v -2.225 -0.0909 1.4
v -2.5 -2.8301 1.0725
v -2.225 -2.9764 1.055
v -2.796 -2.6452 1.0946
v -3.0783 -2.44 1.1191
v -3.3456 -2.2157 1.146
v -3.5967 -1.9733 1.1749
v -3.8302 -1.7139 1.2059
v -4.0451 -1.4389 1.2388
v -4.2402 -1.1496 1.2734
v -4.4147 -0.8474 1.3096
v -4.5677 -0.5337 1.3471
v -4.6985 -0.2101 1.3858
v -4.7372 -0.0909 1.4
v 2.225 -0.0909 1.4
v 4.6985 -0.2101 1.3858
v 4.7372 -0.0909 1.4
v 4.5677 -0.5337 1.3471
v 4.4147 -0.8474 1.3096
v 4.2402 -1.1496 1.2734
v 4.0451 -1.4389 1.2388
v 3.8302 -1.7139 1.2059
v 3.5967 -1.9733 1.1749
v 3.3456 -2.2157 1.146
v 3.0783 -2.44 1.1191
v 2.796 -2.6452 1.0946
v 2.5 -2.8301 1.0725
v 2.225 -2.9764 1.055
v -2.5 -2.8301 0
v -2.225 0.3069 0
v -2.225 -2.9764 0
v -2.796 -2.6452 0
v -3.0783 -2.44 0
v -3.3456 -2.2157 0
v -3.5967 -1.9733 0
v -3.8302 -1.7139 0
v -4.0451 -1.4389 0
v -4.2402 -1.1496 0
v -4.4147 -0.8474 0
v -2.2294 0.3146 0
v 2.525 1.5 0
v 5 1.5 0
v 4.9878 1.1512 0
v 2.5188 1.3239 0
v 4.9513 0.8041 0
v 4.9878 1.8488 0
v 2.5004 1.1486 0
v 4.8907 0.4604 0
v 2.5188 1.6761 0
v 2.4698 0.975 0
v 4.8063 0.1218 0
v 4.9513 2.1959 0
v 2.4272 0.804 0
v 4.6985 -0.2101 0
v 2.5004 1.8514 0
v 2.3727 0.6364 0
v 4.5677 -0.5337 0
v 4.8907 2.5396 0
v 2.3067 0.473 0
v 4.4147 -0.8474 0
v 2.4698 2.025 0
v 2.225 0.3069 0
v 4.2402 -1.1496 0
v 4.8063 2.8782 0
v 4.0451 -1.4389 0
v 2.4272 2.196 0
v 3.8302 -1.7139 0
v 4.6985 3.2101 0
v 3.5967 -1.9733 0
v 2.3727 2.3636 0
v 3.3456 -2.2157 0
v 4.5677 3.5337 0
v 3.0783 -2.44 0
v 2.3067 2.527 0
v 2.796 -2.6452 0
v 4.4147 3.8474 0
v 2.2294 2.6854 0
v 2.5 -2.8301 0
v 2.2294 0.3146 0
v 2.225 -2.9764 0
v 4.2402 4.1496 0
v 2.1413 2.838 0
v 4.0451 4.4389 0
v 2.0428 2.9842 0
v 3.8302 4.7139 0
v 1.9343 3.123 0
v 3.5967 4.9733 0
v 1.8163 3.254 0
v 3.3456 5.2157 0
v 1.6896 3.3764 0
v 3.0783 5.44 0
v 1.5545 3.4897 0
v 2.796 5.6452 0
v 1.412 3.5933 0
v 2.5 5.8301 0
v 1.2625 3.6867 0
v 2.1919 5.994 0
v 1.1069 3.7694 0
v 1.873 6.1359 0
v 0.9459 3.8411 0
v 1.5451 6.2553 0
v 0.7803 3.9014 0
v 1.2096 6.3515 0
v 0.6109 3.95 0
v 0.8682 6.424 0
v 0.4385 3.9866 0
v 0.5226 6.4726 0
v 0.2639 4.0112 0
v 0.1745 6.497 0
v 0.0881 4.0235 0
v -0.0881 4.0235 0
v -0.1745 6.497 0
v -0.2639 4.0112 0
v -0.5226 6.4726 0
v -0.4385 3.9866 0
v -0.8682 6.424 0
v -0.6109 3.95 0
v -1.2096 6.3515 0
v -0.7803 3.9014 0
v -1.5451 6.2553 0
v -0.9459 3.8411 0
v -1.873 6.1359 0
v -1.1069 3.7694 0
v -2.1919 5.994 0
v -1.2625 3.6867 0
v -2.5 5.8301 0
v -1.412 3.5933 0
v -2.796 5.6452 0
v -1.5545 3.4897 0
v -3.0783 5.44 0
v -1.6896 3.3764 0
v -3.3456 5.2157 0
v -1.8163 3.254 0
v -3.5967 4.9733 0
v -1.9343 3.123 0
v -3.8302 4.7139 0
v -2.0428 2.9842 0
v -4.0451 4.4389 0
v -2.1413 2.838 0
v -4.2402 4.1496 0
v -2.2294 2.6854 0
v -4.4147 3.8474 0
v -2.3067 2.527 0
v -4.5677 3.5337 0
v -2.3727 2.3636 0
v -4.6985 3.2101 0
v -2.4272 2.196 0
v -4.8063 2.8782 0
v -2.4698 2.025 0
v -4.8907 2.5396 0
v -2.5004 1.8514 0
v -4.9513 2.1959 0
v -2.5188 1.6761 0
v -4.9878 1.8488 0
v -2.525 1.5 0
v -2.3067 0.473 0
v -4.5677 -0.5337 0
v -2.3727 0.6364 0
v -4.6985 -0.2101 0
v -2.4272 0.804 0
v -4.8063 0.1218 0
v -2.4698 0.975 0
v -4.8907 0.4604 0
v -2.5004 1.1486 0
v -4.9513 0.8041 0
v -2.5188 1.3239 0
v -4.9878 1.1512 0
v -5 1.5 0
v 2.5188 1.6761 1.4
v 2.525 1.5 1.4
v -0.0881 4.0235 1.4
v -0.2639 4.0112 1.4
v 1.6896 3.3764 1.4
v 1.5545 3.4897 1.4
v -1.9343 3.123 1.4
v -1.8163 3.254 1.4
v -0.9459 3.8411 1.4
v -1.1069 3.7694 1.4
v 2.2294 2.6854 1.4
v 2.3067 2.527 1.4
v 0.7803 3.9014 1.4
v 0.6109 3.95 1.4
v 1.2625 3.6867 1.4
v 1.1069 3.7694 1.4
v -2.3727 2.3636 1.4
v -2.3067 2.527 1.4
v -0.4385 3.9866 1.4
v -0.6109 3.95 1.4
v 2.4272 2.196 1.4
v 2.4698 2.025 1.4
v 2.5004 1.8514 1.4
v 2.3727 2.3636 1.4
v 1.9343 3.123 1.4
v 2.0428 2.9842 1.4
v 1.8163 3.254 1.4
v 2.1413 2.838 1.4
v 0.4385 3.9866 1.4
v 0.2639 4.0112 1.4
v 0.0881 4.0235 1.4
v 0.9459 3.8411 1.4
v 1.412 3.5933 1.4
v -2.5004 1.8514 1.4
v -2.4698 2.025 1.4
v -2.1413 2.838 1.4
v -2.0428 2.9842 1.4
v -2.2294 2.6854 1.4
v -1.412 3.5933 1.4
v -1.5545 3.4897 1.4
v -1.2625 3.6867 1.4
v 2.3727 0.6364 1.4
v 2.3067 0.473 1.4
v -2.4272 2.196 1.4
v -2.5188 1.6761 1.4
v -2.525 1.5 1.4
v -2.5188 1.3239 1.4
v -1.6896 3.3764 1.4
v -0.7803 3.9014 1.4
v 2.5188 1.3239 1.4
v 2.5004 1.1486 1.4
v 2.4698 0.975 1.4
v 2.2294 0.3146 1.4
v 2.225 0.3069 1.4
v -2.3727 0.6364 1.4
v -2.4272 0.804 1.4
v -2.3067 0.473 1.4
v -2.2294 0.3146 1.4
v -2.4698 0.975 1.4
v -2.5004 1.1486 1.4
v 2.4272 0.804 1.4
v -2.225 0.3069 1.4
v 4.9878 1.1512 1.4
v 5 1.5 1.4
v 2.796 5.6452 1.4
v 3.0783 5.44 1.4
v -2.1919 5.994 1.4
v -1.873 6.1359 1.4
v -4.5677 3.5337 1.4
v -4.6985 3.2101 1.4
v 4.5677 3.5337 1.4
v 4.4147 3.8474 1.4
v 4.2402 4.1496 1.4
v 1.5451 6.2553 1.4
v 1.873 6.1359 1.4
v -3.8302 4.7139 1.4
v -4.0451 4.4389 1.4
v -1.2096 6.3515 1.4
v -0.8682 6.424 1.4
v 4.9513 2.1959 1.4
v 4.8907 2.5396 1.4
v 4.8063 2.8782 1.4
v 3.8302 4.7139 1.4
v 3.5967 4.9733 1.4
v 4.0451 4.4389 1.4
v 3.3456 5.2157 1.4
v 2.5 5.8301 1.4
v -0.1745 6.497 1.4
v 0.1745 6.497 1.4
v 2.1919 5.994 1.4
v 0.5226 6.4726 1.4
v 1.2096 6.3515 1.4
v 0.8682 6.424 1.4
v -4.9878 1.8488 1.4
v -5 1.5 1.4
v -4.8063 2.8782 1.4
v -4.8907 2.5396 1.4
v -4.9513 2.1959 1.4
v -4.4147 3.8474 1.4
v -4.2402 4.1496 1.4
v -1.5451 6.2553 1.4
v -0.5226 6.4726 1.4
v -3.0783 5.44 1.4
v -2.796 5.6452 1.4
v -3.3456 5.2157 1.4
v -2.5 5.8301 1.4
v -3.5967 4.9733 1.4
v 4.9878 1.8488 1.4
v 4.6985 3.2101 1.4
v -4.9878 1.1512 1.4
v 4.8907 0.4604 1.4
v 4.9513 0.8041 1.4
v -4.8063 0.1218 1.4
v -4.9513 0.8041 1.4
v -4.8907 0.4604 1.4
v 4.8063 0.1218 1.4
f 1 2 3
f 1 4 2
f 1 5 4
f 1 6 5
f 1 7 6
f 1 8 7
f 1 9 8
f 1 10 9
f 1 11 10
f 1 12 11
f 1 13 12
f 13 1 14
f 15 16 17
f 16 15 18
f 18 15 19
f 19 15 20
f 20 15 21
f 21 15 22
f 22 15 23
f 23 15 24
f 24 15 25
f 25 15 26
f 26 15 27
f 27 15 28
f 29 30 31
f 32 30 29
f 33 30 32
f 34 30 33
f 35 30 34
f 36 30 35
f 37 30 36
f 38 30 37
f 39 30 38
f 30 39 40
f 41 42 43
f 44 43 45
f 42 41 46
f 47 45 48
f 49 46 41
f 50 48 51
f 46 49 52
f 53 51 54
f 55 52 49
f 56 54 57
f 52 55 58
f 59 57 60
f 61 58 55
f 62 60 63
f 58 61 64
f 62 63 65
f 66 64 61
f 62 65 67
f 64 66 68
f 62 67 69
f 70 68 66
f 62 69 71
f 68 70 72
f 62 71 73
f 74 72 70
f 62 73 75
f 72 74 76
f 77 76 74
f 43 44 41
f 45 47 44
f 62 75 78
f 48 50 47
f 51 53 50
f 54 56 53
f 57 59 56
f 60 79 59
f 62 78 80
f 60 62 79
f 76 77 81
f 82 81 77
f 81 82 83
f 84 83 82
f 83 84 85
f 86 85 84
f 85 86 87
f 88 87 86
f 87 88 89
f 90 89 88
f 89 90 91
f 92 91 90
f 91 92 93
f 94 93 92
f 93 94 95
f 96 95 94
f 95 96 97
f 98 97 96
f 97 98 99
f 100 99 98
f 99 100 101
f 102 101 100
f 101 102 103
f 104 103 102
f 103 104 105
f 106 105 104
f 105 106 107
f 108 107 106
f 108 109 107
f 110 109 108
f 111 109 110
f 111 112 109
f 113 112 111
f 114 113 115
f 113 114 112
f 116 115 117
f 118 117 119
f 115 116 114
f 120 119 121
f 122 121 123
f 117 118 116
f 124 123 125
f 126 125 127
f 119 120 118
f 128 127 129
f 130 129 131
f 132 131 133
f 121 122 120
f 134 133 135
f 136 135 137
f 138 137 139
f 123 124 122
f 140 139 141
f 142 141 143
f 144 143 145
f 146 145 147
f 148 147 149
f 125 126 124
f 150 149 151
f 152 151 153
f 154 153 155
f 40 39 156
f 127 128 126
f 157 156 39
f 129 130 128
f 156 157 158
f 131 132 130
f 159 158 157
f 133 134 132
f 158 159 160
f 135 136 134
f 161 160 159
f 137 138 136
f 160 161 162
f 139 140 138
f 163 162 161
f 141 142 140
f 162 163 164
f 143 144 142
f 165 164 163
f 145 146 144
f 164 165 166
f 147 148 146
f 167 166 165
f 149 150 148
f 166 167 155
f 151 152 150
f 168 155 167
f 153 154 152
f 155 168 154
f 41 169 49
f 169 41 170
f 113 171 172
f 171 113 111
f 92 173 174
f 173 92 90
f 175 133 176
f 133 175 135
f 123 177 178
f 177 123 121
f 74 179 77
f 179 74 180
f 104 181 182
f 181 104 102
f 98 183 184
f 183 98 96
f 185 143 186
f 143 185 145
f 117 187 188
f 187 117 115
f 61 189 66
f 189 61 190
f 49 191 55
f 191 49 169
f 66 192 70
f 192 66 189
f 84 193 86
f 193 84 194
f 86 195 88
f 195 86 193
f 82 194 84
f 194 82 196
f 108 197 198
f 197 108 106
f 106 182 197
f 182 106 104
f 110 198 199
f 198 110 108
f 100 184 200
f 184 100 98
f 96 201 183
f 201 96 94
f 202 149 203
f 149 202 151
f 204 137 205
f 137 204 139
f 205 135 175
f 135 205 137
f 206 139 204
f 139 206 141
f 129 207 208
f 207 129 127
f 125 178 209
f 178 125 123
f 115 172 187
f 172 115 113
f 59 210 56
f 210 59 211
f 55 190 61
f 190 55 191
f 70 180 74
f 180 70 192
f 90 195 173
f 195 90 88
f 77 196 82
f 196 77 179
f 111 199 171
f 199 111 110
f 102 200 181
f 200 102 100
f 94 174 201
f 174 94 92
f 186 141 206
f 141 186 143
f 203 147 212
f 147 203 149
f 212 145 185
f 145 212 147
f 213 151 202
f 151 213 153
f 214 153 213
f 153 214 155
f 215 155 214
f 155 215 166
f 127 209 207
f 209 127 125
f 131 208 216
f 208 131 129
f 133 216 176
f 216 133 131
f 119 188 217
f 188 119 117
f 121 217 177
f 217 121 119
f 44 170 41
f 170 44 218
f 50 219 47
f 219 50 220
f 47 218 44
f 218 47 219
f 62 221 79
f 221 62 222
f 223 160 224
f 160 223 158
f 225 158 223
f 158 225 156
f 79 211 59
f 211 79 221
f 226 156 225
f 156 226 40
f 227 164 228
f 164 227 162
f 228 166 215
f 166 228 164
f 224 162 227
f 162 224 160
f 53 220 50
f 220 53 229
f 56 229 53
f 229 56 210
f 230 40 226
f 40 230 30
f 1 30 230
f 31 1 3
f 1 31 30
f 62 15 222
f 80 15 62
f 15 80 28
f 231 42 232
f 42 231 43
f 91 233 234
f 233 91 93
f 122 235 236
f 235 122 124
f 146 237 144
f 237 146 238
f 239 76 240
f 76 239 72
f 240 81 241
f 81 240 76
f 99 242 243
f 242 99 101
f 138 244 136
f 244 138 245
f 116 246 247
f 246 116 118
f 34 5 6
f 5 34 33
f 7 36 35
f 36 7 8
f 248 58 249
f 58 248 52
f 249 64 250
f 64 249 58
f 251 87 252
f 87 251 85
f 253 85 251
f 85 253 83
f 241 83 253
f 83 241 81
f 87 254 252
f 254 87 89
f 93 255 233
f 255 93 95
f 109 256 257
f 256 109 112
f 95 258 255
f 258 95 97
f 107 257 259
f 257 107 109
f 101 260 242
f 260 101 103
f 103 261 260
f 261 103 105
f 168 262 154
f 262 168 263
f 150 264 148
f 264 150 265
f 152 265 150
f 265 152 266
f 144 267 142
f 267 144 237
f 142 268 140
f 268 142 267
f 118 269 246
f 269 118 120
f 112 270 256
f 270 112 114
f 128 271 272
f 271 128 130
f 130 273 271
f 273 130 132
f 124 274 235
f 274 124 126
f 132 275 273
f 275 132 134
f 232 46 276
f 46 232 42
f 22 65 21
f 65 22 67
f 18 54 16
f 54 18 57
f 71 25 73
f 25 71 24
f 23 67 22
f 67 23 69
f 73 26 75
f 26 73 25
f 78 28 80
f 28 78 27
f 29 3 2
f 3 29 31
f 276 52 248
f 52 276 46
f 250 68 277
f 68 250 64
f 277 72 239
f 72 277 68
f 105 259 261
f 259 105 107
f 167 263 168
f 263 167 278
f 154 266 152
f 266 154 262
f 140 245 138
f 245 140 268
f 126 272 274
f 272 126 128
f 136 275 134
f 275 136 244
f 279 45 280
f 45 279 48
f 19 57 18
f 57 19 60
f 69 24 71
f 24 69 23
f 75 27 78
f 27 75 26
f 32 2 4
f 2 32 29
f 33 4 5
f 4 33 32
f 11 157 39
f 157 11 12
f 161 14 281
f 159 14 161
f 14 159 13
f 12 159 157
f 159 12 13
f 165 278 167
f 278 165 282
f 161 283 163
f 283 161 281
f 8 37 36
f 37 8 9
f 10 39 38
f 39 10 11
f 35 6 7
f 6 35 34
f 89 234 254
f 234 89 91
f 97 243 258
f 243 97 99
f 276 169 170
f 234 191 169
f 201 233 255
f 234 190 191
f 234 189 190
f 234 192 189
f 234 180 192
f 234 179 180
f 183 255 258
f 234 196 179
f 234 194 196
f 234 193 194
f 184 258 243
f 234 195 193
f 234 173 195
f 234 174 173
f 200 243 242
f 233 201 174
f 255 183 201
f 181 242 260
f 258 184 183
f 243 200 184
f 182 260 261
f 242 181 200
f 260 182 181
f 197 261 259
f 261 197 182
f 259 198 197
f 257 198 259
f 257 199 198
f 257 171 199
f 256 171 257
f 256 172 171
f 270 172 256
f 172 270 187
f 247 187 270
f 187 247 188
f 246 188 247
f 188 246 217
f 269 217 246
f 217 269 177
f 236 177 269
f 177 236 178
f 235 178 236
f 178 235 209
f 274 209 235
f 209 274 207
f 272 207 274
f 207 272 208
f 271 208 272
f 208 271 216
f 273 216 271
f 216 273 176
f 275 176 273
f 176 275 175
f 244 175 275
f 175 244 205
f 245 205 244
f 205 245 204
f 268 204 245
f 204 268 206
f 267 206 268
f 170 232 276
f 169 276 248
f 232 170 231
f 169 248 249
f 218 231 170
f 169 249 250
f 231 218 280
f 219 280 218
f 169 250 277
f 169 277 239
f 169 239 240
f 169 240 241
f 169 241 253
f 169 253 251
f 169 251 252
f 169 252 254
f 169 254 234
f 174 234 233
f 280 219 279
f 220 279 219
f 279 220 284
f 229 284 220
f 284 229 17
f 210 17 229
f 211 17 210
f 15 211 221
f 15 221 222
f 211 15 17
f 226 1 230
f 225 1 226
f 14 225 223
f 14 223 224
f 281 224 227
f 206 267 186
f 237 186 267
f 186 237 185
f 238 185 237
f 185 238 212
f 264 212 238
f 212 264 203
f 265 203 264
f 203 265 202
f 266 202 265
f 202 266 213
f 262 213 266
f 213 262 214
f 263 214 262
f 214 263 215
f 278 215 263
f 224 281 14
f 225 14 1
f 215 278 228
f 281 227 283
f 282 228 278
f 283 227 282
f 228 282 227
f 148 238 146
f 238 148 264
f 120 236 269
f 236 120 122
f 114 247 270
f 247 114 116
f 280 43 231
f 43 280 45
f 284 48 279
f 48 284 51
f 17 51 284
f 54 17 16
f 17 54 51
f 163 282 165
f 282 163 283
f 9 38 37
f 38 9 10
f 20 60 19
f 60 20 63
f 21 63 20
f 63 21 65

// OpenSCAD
// E3D Wedge for any printer.
// This helps lock in place the E3D's push-to-fit connector, which is
// supposed to secures the PTFE tubing.
//
// Haydn Huntley
// haydn.huntley@gmail.com

// Note: assumes a layer height of 0.1mm, or better yet 0.05mm.

$fn = 360/4;
smidge = 0.1;
radius = 4.85/2;
actualHeight = 1.4;
height = 2.2;
xSize = 10;
ySize = 12;

intersection()
{
	color("blue")
	translate([0, ySize/8, 0])
	cylinder(r=5, h=actualHeight);

	difference()
	{
		// The wedge shape.
		hull()
		{
			translate([-xSize/2, ySize*0.55, 0])
			cube([xSize, smidge, height]);
		
			translate([-xSize/2, -ySize*0.6, 0])
			cube([xSize, smidge, height/4]);
		}

		// The hole in the center.
		translate([0, ySize/8, -smidge/2])
		cylinder(r=radius+smidge, h=height+smidge);

		// The slot.
		hull()
		{
			translate([0, ySize/8, -smidge/2])
			cylinder(r=radius-2*smidge, h=height+smidge);

			translate([0, -ySize/2, -smidge/2])
			cylinder(r=radius-2*smidge, h=height+smidge);
		}
	}
}
